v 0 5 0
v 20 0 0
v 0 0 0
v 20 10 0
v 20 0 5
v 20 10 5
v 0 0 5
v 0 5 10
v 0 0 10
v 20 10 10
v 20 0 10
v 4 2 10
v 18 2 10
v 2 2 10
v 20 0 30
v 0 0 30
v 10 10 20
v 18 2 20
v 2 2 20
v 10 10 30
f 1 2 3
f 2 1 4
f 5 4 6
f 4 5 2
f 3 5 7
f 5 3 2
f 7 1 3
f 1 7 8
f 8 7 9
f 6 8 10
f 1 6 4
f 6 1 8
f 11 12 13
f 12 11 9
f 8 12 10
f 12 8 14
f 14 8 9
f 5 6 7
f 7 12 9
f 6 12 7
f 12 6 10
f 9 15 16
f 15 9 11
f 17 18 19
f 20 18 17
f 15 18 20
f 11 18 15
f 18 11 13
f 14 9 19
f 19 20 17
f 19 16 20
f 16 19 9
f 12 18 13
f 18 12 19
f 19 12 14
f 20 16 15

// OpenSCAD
// Define the wedge block
module wedge_block() {
    difference() {
        // Base block
        linear_extrude(height = 10)
            polygon(points = [[0, 0], [20, 0], [20, 10], [0, 5]]);
        // Cutout to create the slanted top
        translate([0, 0, 5])
            linear_extrude(height = 10)
                polygon(points = [[0, 0], [20, 0], [20, 10]]);
    }
}

// Define the hollow triangular prism
module hollow_triangular_prism() {
    difference() {
        // Outer triangular prism
        linear_extrude(height = 10)
            polygon(points = [[0, 0], [20, 0], [10, 10]]);
        // Inner triangular cutout
        translate([2, 2, 0])
            linear_extrude(height = 10)
                polygon(points = [[0, 0], [16, 0], [8, 8]]);
    }
}

// Define the solid triangular prism
module solid_triangular_prism() {
    linear_extrude(height = 10)
        polygon(points = [[0, 0], [20, 0], [10, 10]]);
}

// Assemble the model
module flexible_coupling() {
    // Layer 3: Wedge block
    translate([0, 0, 0])
        wedge_block();
    // Layer 2: Hollow triangular prism
    translate([0, 0, 10])
        hollow_triangular_prism();
    // Layer 1: Solid triangular prism
    translate([0, 0, 20])
        solid_triangular_prism();
}

// Render the model
flexible_coupling();
